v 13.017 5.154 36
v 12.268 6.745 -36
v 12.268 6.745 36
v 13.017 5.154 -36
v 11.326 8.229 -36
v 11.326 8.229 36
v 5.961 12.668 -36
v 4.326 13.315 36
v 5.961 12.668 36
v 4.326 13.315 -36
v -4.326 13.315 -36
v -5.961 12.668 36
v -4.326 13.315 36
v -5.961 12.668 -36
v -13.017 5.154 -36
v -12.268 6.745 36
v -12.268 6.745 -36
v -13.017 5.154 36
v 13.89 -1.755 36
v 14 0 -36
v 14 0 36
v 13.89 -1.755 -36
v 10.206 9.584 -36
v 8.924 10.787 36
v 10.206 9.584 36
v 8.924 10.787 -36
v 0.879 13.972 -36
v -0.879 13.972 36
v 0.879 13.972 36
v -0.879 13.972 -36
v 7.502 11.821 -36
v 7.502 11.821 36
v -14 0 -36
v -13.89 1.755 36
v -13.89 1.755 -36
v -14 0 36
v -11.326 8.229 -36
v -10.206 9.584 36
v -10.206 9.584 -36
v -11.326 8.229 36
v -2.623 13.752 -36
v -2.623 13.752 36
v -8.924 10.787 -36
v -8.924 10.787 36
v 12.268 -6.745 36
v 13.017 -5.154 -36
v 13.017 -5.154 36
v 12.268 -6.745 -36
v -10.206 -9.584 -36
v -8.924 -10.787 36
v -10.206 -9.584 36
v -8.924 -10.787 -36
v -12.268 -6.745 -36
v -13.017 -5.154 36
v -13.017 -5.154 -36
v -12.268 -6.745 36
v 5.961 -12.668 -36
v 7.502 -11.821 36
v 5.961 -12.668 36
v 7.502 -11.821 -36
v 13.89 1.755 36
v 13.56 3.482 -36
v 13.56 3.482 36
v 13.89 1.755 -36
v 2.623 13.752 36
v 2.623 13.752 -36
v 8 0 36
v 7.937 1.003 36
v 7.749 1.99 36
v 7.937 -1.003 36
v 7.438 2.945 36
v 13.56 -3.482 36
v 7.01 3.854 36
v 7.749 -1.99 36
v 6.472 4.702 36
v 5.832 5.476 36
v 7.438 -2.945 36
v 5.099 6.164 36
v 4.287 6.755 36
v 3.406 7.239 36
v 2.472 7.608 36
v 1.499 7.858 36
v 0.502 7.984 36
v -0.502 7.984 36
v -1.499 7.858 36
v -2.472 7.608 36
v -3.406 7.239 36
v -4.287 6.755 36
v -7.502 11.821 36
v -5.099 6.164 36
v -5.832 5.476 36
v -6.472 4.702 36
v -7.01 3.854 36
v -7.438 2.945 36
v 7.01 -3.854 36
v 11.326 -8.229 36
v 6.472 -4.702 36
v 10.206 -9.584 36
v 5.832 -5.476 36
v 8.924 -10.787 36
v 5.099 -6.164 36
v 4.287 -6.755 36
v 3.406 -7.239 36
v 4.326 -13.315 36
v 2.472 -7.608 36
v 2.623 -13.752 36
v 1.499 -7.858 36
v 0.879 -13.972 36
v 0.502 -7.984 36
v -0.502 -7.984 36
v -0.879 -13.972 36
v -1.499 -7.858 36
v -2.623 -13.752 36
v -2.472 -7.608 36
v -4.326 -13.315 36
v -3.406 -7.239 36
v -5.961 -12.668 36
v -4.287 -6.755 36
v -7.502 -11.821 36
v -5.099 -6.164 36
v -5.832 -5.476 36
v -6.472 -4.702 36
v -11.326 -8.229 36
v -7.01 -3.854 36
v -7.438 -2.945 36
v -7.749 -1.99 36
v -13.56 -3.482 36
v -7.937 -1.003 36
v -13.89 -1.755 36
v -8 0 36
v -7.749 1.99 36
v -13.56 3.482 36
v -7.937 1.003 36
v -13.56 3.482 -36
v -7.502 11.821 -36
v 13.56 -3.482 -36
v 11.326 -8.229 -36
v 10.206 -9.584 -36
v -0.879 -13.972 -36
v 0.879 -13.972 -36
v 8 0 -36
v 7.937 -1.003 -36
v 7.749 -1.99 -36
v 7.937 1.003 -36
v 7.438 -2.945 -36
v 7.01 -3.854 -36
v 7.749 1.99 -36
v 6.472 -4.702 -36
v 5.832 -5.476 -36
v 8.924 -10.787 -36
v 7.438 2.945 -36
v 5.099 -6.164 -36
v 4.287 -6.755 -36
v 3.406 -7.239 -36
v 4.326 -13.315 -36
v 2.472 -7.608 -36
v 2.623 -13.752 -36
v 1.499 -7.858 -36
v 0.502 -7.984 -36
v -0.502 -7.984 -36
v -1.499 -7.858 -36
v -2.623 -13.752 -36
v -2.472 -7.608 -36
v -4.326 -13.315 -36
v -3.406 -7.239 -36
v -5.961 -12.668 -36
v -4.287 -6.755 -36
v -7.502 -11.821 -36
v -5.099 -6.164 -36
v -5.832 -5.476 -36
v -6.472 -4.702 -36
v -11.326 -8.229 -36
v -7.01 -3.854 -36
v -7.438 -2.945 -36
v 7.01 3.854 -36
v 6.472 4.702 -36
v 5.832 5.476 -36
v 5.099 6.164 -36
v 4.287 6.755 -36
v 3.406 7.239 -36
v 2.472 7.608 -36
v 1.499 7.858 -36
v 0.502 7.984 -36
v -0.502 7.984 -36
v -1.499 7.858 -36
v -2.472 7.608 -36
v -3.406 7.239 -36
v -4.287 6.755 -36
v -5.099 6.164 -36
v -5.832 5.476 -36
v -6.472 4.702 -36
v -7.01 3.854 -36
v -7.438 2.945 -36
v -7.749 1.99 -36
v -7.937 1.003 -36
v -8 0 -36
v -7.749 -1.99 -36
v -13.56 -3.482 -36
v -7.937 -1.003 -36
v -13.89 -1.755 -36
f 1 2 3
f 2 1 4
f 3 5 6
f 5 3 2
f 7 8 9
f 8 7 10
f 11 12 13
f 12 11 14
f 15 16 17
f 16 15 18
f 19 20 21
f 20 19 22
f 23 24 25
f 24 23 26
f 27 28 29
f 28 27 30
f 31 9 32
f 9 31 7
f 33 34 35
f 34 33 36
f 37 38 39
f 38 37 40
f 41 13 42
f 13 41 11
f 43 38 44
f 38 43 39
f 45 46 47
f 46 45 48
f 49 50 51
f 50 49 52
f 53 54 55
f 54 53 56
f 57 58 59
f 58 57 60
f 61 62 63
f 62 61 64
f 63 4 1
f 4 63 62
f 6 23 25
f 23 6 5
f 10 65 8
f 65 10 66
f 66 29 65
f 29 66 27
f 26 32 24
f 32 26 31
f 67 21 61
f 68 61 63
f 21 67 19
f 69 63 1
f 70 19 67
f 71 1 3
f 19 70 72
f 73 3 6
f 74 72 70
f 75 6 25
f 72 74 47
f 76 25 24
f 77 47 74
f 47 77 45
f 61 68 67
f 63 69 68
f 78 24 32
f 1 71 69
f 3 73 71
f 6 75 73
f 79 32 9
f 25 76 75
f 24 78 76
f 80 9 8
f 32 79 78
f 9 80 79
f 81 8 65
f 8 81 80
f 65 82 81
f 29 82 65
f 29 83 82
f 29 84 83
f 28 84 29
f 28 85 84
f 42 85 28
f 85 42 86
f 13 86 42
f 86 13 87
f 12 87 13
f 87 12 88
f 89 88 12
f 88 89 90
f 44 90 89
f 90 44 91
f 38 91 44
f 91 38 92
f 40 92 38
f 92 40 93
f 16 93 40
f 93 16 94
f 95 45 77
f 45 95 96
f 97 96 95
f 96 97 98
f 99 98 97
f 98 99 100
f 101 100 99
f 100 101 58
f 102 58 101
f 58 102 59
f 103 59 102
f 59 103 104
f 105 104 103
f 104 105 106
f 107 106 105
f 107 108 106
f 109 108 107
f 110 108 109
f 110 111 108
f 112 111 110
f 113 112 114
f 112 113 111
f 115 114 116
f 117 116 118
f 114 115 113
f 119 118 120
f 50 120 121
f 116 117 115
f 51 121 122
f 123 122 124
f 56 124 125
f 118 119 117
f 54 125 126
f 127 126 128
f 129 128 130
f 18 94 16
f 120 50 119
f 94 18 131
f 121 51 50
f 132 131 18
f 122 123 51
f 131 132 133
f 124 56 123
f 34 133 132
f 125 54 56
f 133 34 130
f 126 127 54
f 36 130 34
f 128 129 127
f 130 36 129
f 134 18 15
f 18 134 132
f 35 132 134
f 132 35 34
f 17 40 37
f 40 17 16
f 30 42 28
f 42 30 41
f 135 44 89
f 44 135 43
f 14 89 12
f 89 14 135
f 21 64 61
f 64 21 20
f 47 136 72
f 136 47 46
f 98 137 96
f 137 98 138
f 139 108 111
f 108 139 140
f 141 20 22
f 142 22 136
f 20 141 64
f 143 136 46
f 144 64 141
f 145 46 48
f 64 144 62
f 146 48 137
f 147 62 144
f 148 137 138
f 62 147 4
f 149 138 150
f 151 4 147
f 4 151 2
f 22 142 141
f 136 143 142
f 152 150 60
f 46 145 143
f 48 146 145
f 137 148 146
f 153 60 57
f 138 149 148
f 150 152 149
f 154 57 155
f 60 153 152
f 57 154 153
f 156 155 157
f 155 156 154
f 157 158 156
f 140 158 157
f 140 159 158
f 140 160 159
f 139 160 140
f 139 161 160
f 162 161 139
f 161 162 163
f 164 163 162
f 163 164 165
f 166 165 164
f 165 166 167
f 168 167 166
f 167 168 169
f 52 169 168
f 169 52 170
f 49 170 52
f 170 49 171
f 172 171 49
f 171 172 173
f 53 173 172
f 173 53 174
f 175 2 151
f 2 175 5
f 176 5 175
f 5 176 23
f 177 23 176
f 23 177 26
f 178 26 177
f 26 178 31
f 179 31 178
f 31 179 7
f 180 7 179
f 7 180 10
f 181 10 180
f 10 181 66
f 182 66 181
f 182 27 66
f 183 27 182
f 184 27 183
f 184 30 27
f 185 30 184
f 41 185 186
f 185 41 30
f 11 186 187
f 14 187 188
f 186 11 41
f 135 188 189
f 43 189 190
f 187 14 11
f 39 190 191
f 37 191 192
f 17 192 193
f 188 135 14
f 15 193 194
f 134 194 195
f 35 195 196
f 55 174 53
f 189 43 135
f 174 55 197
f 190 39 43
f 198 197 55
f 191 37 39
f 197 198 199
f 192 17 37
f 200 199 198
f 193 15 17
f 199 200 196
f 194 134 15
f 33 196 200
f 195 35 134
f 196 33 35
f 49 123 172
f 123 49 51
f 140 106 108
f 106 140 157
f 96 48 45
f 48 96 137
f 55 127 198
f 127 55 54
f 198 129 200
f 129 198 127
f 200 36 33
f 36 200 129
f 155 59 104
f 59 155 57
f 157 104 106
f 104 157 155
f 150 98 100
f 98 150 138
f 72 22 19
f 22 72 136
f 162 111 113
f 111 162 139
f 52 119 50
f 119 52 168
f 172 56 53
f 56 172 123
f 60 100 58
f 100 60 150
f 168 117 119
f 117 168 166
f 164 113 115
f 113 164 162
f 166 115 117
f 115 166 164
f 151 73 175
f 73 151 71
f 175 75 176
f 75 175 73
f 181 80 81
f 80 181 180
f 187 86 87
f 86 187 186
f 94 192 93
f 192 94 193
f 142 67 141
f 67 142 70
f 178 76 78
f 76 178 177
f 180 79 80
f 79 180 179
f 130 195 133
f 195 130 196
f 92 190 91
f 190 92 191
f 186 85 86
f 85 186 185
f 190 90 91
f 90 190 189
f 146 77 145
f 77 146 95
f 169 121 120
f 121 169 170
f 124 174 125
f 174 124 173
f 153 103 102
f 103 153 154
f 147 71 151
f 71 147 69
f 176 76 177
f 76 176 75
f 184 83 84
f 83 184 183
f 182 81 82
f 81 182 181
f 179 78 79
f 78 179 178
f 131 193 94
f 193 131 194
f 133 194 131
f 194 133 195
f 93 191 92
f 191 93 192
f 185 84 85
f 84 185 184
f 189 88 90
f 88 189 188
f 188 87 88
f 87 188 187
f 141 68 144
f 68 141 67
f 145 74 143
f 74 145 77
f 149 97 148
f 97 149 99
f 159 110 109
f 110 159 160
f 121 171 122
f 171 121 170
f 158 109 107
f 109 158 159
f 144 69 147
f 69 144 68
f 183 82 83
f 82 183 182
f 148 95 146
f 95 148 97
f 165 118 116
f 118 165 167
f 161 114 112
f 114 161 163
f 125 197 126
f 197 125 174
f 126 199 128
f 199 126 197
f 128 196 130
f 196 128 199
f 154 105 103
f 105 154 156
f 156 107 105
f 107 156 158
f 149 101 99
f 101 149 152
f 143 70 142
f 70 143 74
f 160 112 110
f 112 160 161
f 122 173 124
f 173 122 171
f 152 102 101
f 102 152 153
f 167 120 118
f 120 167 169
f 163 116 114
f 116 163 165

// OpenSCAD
$fn = 50;


difference() {
	union() {
		translate(v = [0, 0, -36.0000000000]) {
			cylinder(h = 72, r = 14.0000000000);
		}
	}
	union() {
		translate(v = [0, 0, -100.0000000000]) {
			cylinder(h = 200, r = 8);
		}
	}
}
